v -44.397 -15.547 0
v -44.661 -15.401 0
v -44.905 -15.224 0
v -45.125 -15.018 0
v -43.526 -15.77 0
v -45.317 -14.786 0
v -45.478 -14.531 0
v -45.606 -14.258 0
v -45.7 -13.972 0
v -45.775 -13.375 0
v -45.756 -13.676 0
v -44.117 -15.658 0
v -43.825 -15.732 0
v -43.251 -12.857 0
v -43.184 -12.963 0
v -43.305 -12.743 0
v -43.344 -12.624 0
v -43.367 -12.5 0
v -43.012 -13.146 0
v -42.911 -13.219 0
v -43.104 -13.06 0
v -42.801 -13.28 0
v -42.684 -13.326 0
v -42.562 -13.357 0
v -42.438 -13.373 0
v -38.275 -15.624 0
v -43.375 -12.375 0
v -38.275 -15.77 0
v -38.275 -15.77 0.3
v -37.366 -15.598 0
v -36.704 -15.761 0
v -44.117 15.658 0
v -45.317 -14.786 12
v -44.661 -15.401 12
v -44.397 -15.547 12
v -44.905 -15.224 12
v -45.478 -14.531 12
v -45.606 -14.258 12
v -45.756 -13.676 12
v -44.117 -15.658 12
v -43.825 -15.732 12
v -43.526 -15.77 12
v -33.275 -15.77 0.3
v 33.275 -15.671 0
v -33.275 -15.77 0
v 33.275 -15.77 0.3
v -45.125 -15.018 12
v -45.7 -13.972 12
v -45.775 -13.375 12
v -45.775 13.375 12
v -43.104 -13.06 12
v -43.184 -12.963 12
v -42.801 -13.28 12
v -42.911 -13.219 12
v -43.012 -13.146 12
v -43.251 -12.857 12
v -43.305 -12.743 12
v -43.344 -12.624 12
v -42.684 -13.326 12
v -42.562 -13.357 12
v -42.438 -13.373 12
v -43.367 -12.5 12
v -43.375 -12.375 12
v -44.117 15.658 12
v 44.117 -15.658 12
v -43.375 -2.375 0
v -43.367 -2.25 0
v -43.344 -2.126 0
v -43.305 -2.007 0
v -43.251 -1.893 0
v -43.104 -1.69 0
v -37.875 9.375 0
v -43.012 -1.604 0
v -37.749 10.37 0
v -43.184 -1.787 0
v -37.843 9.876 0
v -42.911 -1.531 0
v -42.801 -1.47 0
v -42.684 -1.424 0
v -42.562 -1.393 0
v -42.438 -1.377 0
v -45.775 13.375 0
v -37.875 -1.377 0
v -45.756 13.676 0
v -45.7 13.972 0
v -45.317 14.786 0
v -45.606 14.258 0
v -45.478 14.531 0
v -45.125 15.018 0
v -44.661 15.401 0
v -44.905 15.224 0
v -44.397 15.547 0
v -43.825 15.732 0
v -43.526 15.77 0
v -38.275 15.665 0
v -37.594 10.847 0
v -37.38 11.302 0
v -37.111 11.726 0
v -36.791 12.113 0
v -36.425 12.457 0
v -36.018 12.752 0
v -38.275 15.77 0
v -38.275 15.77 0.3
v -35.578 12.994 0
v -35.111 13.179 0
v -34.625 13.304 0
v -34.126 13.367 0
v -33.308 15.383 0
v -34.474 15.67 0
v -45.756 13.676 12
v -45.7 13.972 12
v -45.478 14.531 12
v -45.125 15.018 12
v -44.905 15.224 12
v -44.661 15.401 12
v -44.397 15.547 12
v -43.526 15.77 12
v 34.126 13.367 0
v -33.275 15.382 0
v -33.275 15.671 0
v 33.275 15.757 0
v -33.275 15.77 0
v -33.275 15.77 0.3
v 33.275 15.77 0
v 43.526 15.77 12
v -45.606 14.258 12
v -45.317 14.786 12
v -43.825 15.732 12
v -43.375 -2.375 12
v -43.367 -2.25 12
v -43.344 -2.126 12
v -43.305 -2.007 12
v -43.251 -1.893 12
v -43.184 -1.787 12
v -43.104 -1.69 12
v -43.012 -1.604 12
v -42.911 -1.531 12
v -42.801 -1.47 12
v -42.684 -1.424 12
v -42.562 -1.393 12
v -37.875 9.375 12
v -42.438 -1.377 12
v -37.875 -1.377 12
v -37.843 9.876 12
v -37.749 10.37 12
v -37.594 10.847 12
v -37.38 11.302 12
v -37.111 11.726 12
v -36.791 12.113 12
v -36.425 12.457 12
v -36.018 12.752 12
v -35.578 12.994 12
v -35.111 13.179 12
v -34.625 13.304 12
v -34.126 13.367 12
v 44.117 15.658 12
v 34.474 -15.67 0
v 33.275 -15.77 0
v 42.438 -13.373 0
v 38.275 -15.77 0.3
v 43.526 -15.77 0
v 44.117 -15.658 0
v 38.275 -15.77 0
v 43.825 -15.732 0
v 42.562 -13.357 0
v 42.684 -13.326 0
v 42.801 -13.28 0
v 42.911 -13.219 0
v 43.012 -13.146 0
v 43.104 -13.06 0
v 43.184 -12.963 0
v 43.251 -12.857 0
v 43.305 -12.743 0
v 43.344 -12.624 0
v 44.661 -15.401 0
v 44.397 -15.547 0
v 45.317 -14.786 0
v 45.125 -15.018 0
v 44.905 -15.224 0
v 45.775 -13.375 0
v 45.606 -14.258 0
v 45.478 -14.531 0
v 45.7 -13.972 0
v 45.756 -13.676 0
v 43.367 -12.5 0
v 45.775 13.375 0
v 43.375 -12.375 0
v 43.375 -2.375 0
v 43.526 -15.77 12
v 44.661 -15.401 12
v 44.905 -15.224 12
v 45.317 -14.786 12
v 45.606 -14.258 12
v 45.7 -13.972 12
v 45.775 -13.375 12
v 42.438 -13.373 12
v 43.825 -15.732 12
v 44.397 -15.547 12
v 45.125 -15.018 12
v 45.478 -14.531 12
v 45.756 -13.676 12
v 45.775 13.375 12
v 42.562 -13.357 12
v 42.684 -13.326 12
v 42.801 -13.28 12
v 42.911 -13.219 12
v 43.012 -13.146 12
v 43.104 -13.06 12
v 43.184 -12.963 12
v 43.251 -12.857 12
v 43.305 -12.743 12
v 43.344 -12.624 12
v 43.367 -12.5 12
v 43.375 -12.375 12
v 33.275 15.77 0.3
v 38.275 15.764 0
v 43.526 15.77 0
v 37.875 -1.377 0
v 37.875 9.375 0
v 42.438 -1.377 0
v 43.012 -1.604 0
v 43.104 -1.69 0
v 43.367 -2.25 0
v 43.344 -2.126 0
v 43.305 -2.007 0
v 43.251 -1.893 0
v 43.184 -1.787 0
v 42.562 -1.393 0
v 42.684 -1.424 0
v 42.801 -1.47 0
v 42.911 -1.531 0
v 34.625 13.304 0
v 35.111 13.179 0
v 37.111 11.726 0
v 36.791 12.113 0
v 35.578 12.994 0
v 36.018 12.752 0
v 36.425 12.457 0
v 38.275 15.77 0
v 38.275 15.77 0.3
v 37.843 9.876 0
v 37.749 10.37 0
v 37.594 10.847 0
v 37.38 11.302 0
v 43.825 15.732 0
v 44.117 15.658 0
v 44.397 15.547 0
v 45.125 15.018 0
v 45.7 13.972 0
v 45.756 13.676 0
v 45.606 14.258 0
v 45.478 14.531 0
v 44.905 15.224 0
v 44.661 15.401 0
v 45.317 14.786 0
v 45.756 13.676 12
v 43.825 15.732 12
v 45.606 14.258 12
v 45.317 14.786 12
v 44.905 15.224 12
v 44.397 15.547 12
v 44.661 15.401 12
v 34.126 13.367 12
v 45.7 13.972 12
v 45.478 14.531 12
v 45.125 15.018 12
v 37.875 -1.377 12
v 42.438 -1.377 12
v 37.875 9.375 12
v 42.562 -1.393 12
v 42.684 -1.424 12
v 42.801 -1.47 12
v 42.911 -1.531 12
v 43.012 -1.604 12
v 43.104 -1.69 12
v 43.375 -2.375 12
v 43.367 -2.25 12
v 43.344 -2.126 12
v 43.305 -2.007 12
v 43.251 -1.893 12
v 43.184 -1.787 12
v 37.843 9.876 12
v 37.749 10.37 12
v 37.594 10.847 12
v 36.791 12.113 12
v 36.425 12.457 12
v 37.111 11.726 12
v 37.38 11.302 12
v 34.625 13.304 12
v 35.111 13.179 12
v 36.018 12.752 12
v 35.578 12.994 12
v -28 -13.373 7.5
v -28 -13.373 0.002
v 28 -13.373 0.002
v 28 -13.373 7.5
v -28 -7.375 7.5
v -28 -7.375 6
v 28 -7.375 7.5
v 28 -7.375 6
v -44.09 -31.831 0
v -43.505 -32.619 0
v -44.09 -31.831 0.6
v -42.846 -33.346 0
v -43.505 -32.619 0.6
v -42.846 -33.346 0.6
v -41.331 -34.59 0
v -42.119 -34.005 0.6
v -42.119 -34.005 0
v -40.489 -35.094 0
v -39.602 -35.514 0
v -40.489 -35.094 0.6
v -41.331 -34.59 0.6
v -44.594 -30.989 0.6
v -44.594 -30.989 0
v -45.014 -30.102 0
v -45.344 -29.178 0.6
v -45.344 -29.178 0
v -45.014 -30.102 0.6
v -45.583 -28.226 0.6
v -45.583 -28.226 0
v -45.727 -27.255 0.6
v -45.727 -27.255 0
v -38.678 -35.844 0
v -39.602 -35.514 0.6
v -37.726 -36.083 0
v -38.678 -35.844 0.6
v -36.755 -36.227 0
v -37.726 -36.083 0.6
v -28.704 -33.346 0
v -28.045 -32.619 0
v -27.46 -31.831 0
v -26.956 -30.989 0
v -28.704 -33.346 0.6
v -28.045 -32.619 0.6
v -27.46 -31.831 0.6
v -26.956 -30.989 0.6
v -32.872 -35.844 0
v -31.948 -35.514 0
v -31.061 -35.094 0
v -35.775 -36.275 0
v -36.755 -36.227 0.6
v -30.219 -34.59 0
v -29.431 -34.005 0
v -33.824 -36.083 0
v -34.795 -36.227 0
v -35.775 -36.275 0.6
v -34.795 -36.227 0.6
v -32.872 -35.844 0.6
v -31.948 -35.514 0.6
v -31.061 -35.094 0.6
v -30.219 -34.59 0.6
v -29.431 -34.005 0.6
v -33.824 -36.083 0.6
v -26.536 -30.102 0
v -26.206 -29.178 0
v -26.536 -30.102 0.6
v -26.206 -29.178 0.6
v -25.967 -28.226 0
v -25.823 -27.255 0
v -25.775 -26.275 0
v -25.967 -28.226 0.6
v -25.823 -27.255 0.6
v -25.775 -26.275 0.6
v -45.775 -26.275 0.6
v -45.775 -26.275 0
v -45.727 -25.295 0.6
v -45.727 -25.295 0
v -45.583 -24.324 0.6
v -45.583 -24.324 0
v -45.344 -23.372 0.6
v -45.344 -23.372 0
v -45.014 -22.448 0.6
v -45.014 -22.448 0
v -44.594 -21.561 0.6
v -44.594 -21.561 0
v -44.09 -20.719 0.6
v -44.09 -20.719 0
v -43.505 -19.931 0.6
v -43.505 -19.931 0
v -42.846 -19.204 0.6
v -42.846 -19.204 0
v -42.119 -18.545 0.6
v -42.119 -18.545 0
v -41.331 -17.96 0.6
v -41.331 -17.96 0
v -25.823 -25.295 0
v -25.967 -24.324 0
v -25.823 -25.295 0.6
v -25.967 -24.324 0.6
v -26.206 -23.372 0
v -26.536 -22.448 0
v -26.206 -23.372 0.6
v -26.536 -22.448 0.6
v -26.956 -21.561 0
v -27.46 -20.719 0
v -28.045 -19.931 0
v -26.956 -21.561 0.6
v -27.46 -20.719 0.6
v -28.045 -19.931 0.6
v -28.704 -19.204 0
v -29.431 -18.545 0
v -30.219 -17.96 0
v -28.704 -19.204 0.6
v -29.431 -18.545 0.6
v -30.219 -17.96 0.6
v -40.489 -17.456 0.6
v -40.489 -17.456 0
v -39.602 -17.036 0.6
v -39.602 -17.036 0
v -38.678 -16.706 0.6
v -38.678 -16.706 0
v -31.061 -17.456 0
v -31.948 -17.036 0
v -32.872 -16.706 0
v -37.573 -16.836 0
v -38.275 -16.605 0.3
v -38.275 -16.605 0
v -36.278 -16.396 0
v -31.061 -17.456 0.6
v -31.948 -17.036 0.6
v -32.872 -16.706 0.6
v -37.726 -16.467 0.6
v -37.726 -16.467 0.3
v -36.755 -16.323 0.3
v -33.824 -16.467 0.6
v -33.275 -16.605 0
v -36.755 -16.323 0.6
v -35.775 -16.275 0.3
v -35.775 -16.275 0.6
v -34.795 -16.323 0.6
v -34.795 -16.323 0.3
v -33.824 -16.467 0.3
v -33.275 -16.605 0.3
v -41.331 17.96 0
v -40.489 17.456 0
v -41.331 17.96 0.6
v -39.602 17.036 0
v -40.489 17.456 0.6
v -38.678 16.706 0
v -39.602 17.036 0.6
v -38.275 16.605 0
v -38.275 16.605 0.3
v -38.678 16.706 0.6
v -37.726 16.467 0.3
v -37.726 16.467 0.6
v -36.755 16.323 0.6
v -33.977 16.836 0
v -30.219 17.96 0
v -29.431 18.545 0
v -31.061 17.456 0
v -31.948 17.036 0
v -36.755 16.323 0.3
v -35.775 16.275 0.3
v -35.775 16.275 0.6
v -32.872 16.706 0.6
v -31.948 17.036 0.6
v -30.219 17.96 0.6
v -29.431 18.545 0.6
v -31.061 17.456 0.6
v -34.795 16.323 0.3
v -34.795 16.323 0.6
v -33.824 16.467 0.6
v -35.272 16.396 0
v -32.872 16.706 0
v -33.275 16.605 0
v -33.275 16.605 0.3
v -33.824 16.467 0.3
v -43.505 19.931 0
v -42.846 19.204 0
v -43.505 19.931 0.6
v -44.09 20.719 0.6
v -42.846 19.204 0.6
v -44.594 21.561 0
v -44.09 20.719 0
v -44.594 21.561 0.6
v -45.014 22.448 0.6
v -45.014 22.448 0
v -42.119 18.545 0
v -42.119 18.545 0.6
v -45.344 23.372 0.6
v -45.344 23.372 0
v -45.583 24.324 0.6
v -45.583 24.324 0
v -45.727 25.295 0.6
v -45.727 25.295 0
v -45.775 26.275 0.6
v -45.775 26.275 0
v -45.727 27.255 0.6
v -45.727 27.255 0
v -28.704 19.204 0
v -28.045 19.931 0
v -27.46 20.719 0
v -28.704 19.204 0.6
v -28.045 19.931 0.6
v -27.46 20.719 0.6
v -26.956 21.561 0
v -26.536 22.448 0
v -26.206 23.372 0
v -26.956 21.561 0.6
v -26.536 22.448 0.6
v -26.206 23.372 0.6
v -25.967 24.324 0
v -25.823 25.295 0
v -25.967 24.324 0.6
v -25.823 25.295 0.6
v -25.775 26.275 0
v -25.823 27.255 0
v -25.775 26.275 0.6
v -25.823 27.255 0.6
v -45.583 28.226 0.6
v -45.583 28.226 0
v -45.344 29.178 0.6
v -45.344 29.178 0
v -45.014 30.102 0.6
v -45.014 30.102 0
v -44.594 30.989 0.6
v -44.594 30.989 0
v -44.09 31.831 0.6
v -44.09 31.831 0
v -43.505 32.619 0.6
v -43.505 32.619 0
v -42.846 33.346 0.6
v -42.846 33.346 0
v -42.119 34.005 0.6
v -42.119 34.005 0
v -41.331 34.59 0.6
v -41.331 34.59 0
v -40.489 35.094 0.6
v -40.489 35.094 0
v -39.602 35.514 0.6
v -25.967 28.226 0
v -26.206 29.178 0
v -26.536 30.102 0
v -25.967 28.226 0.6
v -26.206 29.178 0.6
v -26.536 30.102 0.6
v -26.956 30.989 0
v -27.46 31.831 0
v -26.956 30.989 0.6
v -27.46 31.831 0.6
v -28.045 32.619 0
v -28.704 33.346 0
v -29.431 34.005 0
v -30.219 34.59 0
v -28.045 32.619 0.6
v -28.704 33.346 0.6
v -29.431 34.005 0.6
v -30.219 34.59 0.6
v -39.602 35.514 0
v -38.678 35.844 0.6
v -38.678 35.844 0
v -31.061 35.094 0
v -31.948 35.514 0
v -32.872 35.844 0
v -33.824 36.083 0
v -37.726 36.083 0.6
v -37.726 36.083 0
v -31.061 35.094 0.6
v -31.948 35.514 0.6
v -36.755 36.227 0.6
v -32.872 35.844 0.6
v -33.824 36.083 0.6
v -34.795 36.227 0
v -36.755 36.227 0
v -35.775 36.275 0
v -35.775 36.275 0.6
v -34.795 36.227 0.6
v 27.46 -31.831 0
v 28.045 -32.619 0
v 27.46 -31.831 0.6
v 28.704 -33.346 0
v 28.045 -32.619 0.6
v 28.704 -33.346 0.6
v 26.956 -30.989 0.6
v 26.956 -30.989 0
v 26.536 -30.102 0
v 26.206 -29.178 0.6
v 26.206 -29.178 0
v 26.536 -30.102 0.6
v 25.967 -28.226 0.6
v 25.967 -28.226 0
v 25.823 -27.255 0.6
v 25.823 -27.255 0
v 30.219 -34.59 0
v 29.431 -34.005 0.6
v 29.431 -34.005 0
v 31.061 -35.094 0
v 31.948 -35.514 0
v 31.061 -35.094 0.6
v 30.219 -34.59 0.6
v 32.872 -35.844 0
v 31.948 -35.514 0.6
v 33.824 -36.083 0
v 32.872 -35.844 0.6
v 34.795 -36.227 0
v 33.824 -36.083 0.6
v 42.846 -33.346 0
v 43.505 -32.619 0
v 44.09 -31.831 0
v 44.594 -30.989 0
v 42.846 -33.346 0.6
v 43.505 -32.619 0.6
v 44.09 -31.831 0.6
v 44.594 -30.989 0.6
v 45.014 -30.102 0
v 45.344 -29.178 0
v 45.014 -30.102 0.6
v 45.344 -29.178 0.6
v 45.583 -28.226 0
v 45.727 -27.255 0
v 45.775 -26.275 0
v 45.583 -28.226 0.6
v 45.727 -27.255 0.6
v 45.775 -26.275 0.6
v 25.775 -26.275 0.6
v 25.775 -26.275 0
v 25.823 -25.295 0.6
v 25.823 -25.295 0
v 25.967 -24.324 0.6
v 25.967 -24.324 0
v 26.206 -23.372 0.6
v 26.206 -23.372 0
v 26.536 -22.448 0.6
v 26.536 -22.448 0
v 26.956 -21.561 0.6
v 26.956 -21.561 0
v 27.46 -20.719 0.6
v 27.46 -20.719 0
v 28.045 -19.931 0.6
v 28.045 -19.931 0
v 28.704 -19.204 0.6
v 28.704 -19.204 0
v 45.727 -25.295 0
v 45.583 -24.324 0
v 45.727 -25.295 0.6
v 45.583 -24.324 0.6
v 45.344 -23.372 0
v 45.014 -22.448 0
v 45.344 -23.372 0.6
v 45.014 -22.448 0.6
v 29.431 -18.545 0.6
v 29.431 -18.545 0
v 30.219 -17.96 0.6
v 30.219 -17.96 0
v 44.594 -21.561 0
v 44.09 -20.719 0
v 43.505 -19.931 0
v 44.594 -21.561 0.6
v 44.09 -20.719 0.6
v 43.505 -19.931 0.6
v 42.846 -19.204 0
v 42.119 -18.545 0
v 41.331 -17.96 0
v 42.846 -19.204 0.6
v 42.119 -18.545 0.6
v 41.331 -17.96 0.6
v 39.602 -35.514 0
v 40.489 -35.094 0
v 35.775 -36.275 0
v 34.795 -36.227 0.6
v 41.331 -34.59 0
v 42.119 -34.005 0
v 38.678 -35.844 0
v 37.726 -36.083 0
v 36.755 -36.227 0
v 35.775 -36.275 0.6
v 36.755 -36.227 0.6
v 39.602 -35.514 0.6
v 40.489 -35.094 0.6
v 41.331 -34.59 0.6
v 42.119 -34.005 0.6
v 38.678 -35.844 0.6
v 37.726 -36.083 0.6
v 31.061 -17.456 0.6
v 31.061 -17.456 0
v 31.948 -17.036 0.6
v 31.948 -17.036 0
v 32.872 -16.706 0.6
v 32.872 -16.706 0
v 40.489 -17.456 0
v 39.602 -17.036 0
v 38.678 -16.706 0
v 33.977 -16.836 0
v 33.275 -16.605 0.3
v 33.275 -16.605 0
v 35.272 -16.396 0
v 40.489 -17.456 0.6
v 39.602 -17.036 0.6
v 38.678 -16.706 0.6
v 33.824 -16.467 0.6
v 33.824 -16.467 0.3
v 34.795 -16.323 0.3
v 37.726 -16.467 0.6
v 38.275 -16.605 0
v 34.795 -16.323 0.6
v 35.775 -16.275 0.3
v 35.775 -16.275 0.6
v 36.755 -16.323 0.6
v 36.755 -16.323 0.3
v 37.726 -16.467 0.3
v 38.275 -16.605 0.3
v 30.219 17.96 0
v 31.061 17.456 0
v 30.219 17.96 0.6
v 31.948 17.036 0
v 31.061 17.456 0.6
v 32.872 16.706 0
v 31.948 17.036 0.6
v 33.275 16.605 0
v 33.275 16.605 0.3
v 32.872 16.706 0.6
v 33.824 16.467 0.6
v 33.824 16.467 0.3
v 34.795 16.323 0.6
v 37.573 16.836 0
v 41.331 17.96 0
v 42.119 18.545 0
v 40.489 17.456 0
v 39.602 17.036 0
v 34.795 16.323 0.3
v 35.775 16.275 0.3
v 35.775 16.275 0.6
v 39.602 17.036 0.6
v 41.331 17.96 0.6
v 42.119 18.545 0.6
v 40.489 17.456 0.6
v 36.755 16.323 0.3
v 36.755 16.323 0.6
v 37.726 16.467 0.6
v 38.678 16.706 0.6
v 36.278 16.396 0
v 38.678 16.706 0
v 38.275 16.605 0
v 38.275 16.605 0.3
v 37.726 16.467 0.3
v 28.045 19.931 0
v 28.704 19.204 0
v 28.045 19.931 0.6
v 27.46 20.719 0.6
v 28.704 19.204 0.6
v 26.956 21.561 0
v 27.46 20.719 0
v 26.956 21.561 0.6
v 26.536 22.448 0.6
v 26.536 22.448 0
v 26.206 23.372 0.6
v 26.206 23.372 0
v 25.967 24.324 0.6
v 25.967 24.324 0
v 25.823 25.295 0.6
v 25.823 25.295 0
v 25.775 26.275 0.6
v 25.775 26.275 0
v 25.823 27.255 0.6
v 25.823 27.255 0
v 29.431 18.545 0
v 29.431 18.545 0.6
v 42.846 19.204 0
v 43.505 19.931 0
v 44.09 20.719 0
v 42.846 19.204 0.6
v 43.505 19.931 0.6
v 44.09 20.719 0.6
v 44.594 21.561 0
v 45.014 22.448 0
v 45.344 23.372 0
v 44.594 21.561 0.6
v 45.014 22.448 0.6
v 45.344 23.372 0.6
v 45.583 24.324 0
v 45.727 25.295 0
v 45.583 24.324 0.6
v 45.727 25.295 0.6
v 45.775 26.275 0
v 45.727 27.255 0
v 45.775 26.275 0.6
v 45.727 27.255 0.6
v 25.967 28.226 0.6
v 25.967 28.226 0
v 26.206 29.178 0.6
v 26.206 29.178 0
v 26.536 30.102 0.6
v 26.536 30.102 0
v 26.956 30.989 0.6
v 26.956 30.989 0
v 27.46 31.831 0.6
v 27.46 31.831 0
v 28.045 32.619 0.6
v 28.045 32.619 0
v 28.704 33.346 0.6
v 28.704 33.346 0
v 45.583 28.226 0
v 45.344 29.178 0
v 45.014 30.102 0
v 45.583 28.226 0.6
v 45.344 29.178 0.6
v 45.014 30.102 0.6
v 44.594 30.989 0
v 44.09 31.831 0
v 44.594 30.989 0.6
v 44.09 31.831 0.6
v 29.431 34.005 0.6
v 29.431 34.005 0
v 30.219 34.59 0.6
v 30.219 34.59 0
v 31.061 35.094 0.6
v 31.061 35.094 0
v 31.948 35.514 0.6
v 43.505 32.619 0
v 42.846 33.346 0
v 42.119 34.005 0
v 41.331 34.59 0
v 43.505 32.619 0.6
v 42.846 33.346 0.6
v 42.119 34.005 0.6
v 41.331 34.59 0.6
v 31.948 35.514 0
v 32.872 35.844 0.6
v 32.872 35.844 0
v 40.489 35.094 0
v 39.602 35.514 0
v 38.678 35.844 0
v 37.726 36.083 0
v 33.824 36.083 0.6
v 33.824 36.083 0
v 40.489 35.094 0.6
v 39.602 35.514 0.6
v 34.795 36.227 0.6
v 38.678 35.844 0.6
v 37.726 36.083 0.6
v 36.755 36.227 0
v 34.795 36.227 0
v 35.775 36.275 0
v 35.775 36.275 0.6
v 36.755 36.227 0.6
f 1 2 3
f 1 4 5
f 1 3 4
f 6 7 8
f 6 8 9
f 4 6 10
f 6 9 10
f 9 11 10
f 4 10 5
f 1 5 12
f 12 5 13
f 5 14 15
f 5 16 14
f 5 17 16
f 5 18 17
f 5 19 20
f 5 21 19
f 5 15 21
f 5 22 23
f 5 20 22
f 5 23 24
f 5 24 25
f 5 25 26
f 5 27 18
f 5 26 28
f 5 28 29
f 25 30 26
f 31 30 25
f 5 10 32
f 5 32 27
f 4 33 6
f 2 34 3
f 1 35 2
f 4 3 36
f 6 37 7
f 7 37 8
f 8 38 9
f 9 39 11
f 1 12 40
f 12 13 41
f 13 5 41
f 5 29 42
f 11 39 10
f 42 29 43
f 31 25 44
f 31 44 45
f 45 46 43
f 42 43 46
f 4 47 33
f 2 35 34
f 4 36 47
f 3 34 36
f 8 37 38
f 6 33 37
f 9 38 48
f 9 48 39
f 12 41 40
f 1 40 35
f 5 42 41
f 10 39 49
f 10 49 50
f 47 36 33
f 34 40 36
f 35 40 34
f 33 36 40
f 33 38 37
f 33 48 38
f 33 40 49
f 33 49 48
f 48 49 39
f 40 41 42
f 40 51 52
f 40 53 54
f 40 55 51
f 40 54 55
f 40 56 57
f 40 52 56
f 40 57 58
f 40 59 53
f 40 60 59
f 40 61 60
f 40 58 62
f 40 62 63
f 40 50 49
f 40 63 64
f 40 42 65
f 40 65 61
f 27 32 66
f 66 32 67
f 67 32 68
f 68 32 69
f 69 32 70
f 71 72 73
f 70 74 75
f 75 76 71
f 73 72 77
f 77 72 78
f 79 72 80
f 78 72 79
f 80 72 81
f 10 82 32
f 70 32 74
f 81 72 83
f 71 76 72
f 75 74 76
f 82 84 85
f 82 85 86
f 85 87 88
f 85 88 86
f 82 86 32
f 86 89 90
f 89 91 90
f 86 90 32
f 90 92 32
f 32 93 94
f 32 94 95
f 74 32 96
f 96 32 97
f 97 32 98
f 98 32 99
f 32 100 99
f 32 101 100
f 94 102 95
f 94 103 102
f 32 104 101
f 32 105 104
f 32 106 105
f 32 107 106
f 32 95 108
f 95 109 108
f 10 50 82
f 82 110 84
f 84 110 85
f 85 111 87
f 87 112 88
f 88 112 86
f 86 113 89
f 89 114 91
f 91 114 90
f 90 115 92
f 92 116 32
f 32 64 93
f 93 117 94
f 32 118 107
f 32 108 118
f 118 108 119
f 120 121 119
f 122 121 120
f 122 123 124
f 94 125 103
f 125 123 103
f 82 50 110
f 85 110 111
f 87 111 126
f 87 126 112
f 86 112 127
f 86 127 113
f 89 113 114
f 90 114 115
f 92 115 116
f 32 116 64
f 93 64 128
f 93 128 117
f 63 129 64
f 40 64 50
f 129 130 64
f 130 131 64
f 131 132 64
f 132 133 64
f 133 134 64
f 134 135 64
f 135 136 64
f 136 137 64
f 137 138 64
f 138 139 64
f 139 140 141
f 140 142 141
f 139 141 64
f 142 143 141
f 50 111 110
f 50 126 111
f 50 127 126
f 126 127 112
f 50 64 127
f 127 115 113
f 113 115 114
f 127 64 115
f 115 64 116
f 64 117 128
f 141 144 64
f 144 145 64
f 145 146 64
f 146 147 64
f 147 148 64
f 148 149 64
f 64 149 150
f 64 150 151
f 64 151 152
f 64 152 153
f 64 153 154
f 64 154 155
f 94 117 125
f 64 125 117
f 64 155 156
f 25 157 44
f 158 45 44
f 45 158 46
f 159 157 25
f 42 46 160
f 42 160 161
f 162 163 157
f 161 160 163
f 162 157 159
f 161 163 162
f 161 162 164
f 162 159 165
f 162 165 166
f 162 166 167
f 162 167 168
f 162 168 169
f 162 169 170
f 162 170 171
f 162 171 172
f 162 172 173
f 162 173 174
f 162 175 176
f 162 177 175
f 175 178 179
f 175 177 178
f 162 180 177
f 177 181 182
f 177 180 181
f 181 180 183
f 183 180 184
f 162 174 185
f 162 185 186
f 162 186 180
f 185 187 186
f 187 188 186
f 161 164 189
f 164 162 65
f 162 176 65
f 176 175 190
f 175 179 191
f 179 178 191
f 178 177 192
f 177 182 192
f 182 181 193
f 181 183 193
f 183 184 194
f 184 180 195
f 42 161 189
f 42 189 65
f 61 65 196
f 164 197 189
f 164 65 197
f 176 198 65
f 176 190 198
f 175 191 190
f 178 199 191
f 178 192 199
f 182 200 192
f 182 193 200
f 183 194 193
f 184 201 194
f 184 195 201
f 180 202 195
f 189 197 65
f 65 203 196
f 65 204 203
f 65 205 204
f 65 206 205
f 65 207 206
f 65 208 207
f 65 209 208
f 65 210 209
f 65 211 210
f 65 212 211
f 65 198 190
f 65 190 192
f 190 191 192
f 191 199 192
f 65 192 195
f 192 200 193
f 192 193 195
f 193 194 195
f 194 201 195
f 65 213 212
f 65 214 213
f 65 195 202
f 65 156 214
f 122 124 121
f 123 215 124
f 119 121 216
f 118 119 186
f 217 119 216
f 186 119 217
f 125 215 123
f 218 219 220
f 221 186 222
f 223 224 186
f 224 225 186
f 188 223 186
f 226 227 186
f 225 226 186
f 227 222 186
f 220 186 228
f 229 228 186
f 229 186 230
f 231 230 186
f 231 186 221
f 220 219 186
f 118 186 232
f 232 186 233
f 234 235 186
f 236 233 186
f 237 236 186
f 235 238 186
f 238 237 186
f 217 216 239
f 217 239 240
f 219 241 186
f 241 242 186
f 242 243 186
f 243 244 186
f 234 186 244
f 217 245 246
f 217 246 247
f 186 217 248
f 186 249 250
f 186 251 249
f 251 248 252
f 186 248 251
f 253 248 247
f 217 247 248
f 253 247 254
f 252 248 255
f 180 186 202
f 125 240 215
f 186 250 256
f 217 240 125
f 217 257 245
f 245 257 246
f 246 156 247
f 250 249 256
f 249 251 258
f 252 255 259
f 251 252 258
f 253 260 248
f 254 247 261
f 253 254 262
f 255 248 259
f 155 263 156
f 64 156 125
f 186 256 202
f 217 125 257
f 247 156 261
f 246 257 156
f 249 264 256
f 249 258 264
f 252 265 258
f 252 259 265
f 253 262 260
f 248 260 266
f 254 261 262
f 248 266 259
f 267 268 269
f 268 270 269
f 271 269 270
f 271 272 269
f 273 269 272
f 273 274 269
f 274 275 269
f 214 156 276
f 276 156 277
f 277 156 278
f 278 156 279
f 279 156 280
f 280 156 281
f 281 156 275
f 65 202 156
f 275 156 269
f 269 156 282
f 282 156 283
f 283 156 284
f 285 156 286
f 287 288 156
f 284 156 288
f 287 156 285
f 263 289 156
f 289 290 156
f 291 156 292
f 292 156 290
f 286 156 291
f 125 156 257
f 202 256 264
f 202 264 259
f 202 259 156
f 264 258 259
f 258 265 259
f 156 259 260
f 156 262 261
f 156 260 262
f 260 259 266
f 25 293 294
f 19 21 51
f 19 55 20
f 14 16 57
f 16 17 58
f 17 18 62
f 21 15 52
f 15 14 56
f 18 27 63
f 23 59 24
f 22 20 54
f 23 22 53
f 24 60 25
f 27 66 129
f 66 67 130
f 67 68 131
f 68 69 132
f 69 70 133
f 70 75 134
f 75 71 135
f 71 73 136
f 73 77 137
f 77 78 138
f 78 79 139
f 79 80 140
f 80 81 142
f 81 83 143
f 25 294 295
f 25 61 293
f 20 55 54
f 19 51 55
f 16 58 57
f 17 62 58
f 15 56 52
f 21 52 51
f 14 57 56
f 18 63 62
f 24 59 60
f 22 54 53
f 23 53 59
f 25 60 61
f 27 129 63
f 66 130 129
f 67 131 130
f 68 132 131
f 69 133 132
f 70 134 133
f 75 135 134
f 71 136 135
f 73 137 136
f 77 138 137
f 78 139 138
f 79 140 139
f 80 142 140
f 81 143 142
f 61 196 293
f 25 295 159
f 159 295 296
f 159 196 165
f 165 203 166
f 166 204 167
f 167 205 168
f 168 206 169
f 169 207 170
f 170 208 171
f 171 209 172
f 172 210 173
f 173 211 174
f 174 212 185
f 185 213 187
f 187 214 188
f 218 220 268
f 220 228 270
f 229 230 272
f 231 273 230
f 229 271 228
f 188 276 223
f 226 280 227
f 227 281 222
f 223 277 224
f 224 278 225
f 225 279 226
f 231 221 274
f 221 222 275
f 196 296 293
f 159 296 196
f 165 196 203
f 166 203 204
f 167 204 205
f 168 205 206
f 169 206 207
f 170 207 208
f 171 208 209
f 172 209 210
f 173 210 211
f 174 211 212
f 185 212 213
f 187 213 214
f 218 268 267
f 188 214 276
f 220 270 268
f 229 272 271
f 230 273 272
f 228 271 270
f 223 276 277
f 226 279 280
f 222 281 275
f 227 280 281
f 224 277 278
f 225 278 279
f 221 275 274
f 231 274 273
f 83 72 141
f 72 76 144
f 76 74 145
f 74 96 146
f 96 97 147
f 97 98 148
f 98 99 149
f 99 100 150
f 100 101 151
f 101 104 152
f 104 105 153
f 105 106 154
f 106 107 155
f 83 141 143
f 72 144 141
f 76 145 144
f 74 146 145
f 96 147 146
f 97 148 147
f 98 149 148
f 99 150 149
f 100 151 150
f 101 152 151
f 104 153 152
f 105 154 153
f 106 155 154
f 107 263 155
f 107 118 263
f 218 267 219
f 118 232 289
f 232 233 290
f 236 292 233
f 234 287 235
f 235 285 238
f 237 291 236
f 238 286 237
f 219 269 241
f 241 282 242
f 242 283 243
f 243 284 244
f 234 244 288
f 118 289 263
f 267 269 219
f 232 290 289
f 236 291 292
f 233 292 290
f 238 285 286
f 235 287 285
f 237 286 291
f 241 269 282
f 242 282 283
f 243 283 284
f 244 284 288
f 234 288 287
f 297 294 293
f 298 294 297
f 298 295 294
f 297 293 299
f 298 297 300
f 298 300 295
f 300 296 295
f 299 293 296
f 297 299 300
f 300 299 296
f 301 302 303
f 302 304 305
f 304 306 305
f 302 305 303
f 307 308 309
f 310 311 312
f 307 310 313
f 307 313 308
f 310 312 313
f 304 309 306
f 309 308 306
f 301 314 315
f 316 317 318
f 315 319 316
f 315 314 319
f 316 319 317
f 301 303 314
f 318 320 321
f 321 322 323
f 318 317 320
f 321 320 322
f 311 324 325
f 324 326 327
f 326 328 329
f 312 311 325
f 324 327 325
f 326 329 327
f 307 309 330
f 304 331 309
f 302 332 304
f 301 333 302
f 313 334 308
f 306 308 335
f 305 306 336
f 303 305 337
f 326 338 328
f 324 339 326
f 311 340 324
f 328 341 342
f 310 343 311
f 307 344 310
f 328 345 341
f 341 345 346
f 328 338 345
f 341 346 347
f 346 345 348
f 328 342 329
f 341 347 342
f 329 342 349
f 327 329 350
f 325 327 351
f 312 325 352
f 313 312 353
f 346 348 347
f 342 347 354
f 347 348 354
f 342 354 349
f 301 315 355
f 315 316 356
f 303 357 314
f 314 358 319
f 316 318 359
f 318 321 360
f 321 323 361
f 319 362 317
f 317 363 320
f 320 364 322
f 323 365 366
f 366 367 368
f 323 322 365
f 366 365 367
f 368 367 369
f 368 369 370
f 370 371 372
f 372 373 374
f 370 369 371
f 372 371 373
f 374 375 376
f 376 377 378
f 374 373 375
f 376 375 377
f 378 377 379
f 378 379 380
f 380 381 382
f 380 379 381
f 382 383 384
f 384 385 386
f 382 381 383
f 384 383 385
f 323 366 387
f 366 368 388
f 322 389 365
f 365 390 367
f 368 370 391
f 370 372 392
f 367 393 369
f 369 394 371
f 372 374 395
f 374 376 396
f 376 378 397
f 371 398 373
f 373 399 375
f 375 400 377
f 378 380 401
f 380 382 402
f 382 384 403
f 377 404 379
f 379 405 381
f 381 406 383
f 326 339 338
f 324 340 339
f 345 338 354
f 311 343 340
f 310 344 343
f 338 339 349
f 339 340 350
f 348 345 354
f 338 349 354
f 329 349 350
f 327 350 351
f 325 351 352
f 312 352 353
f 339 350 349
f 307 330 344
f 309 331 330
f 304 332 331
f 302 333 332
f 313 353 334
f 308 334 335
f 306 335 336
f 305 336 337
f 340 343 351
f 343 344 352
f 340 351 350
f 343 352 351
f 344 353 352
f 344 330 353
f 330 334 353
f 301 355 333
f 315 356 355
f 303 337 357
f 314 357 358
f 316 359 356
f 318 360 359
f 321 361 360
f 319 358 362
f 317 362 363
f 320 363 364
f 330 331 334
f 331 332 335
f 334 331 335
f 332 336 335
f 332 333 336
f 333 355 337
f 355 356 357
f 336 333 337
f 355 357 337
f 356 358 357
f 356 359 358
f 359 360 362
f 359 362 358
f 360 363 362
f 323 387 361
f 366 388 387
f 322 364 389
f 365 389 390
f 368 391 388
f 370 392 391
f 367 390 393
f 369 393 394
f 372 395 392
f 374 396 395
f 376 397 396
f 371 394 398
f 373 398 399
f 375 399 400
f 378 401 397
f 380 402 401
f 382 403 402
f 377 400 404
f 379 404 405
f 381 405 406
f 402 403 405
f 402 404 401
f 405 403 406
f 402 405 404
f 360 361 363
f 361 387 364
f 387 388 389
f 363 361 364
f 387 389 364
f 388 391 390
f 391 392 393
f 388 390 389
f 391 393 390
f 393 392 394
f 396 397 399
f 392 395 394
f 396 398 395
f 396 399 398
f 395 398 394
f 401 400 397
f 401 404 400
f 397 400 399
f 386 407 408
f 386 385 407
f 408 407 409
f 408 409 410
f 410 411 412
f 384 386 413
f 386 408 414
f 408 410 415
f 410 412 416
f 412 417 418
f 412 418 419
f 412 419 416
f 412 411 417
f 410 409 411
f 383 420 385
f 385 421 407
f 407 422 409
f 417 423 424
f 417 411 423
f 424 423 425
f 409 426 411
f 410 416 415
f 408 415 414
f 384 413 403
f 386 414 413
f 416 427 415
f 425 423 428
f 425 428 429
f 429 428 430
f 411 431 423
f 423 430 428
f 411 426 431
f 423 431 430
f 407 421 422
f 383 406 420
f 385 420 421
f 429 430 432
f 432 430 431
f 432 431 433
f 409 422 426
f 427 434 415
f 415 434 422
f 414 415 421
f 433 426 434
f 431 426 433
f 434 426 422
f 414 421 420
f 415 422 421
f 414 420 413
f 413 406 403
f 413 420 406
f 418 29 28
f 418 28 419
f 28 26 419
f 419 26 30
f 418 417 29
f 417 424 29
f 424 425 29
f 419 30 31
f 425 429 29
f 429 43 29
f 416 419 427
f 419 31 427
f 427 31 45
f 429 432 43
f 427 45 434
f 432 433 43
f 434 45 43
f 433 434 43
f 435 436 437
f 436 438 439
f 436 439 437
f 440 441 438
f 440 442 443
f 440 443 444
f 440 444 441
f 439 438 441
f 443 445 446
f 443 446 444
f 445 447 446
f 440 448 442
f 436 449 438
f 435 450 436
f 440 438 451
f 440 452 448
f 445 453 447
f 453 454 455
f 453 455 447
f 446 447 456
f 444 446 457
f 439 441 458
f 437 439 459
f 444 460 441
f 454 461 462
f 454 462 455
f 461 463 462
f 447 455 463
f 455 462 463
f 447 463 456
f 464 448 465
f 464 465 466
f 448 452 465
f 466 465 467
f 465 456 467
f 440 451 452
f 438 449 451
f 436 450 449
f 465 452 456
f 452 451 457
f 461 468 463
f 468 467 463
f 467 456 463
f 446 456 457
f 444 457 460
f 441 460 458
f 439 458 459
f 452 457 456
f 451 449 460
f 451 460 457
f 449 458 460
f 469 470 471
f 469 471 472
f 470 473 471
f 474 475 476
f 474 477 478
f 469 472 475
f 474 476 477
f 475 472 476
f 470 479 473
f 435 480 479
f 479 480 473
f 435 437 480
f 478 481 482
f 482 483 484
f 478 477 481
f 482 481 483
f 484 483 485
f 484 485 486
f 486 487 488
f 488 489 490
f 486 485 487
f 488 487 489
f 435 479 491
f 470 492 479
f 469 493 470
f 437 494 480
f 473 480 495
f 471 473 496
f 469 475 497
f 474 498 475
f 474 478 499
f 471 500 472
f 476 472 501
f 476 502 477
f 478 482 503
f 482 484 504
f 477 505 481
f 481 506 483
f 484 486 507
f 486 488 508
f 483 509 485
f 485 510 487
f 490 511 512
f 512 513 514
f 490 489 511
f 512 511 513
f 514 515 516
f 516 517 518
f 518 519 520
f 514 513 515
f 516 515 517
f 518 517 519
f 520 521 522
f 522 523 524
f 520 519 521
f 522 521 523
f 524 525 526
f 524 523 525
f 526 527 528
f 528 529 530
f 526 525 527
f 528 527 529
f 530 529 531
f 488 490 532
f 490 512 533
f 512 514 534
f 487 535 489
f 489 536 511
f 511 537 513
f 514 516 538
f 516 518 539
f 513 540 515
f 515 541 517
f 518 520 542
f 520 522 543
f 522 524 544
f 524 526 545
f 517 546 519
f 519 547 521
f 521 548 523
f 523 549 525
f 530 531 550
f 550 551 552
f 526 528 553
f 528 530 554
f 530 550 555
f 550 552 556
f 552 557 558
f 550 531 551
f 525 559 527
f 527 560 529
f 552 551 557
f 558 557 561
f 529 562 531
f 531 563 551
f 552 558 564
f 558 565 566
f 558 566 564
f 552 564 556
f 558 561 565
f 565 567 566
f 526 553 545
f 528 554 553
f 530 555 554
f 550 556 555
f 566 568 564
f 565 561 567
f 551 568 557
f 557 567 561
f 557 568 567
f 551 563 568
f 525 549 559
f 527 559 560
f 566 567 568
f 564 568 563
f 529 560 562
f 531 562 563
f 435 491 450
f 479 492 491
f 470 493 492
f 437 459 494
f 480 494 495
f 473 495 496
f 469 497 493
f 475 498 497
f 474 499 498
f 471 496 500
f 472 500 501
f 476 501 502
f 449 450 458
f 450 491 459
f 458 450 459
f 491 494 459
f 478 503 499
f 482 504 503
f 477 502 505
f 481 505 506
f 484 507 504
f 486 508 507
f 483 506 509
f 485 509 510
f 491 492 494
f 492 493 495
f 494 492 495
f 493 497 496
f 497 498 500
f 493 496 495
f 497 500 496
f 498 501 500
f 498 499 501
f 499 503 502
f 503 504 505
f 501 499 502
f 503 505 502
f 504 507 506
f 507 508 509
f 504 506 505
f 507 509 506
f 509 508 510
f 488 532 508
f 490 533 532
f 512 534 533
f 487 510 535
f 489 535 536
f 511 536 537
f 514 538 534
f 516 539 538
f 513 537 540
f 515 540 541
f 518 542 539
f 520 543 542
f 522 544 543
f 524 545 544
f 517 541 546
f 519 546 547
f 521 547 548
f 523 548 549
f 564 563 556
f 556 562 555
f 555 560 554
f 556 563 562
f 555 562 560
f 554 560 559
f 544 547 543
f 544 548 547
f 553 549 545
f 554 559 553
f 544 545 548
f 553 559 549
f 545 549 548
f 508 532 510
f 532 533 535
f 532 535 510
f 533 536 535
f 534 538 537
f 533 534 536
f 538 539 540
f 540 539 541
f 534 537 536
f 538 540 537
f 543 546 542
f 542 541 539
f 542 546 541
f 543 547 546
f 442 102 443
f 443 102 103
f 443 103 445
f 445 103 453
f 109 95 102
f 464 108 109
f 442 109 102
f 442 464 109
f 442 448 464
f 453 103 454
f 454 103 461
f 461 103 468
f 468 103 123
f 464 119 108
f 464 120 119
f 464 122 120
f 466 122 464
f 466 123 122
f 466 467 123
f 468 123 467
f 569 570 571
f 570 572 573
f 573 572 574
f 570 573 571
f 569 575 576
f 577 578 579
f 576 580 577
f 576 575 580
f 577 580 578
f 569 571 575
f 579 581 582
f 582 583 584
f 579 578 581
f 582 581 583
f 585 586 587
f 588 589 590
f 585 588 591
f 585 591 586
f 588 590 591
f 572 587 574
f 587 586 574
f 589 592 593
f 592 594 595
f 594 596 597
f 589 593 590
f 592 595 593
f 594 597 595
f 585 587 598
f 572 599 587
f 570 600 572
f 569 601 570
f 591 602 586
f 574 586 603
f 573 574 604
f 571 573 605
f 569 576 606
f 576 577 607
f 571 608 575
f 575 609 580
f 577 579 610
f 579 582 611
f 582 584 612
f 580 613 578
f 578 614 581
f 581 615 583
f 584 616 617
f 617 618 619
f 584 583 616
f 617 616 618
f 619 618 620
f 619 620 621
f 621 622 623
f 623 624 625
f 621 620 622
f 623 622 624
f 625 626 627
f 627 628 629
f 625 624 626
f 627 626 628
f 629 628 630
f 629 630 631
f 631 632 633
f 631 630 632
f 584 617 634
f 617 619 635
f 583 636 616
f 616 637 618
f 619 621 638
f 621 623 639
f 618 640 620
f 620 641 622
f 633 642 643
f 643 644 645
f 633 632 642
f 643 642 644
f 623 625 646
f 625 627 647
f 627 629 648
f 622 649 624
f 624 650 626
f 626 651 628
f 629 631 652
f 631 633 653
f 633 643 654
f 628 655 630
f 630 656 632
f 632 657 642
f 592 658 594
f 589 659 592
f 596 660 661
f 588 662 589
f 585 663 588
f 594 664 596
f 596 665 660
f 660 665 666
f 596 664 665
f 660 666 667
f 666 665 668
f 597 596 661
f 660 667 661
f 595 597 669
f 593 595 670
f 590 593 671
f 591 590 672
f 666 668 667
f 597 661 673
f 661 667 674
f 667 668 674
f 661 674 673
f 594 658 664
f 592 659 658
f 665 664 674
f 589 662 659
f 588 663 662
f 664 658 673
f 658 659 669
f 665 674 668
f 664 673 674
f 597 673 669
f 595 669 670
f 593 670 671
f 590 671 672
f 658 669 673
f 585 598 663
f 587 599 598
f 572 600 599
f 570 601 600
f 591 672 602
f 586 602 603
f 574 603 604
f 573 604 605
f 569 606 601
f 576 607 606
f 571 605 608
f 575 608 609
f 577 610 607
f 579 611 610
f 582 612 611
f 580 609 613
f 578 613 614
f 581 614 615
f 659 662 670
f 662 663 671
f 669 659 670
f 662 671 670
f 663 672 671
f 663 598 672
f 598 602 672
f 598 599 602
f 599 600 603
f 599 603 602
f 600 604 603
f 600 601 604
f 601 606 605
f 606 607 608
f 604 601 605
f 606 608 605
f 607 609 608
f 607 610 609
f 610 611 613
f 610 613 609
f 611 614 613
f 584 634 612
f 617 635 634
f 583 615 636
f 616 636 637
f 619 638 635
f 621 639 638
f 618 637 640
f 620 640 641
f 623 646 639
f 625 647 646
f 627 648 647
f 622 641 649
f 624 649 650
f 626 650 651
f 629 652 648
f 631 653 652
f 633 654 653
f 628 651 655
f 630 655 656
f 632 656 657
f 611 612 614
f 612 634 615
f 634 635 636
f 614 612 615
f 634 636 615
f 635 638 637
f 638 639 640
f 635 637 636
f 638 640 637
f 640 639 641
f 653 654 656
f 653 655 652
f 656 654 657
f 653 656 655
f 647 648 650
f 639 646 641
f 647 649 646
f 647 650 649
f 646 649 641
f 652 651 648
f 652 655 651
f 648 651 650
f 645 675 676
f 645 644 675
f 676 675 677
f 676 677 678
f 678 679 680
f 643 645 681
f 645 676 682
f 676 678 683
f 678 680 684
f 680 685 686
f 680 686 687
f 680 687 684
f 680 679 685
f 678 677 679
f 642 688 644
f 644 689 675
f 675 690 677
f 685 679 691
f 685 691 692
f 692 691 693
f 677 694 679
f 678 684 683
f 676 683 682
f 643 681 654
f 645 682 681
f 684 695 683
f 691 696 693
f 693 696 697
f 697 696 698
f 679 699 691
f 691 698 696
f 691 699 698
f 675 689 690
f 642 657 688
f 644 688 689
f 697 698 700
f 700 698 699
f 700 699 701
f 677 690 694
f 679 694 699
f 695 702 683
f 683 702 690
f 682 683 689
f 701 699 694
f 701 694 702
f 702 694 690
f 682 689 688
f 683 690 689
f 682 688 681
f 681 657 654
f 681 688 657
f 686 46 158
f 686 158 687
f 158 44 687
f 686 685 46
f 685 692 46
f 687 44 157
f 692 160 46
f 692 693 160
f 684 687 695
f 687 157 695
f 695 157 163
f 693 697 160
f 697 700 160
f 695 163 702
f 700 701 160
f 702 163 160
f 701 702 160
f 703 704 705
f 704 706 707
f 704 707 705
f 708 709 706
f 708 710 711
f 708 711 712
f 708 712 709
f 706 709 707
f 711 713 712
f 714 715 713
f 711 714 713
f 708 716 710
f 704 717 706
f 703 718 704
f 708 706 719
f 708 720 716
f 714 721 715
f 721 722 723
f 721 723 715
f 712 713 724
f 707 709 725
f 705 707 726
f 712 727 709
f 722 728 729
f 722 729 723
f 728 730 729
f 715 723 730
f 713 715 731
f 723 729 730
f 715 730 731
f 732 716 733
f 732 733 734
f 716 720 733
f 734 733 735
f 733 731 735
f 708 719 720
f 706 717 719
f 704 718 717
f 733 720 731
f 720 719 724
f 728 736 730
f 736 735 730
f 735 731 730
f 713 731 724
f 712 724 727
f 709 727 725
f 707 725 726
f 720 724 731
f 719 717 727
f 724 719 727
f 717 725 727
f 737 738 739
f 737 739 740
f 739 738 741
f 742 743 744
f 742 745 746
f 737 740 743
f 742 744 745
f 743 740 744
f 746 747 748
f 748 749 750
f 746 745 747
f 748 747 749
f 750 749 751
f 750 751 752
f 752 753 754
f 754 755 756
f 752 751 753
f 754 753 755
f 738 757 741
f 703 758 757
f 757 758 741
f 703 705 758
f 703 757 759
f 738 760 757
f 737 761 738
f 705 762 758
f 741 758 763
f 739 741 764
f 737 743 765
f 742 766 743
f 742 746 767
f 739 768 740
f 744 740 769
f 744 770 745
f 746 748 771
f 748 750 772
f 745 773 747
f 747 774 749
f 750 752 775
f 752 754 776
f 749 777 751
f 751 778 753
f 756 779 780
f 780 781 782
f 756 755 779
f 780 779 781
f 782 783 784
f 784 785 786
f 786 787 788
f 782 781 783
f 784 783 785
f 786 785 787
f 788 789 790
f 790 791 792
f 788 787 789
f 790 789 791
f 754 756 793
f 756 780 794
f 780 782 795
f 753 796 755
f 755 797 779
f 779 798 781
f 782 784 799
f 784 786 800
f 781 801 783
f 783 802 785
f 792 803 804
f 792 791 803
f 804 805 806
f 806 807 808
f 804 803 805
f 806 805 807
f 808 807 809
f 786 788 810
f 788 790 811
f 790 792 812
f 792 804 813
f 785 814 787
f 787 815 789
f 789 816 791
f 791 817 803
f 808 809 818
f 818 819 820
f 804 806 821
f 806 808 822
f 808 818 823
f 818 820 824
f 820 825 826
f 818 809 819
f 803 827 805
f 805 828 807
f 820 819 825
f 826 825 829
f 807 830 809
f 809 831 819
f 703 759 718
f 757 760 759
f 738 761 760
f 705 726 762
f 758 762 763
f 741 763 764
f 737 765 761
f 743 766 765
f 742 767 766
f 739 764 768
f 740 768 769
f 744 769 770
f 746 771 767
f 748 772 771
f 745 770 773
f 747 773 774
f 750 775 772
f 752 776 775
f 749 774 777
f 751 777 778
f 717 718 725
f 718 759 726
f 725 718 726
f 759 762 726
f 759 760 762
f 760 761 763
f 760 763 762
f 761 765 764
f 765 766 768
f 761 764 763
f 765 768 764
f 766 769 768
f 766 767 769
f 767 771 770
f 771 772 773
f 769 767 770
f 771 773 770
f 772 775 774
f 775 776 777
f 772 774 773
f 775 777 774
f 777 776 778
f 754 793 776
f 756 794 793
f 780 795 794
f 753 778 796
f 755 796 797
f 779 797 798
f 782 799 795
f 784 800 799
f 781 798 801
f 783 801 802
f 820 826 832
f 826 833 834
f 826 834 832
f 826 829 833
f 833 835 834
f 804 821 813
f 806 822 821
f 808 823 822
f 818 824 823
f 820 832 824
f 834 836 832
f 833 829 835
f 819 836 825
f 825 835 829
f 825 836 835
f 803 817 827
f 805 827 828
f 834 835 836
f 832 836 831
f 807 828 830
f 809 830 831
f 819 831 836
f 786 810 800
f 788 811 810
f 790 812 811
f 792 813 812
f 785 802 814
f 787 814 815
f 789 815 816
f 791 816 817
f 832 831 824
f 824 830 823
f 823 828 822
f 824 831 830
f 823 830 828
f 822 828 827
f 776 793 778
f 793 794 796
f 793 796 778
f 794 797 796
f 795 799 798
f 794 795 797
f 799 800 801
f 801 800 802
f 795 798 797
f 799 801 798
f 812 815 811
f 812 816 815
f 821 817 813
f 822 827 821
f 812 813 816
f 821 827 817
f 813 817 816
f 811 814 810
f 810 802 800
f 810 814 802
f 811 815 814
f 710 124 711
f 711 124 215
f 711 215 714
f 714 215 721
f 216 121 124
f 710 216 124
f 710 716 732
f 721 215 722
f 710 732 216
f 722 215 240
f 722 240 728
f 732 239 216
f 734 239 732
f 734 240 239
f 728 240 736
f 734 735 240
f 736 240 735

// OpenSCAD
$fn = 50;

union() {
	difference() {
		union() {
			hull() {
				translate(v = [-43.375, 13.375, 0]) {
					cylinder(h = 12, r = 2.4);
				}
				translate(v = [43.375, 13.375, 0]) {
					cylinder(h = 12, r = 2.4);
				}
				translate(v = [-43.375, -13.375, 0]) {
					cylinder(h = 12, r = 2.4);
				}
				translate(v = [43.375, -13.375, 0]) {
					cylinder(h = 12, r = 2.4);
				}
			}
		}
		union() {
			translate(v = [0.0, -7.375, -0.1]) {
				hull() {
					translate(v = [-42.375, 5.0, 0]) {
						cylinder(h = 12.2, r = 1.0);
					}
					translate(v = [42.375, 5.0, 0]) {
						cylinder(h = 12.2, r = 1.0);
					}
					translate(v = [-42.375, -5.0, 0]) {
						cylinder(h = 12.2, r = 1.0);
					}
					translate(v = [42.375, -5.0, 0]) {
						cylinder(h = 12.2, r = 1.0);
					}
				}
			}
			translate(v = [0.0, 0.0, -0.1]) {
				hull() {
					translate(v = [-33.875, 9.375, 0]) {
						cylinder(h = 12.2, r = 4.0);
					}
					translate(v = [33.875, 9.375, 0]) {
						cylinder(h = 12.2, r = 4.0);
					}
					translate(v = [-33.875, -9.375, 0]) {
						cylinder(h = 12.2, r = 4.0);
					}
					translate(v = [33.875, -9.375, 0]) {
						cylinder(h = 12.2, r = 4.0);
					}
				}
			}
		}
	}
	union() {
		#translate(v = [-28.0, -13.375, 0]) {
			rotate(a = [90, 0, 90]) {
				linear_extrude(height = 56.0) {
					polygon(points = [[-1.8, 0], [0, 0], [6.0, 6.0], [6.0, 7.5], [-1.8, 7.5]]);
				}
			}
		}
		translate(v = [-35.775, -26.275, 0]) {
			linear_extrude(height = 0.6) {
				polygon(points = [[10.0, 0.0], [9.95184726672197, 0.980171403295606], [9.807852804032304, 1.9509032201612824], [9.569403357322088, 2.902846772544623], [9.238795325112868, 3.826834323650898], [8.819212643483551, 4.7139673682599765], [8.314696123025453, 5.555702330196022], [7.73010453362737, 6.343932841636455], [7.0710678118654755, 7.0710678118654755], [6.343932841636455, 7.730104533627369], [5.555702330196023, 8.314696123025453], [4.713967368259978, 8.81921264348355], [3.8268343236508984, 9.238795325112868], [2.902846772544623, 9.56940335732209], [1.9509032201612833, 9.807852804032304], [0.9801714032956077, 9.951847266721968], [6.123233995736766e-16, 10.0], [-0.9801714032956065, 9.95184726672197], [-1.950903220161282, 9.807852804032304], [-2.9028467725446214, 9.56940335732209], [-3.826834323650897, 9.238795325112868], [-4.713967368259977, 8.819212643483551], [-5.55570233019602, 8.314696123025453], [-6.3439328416364535, 7.730104533627371], [-7.071067811865475, 7.0710678118654755], [-7.73010453362737, 6.343932841636455], [-8.314696123025453, 5.555702330196022], [-8.81921264348355, 4.713967368259978], [-9.238795325112868, 3.826834323650899], [-9.569403357322088, 2.902846772544624], [-9.807852804032304, 1.9509032201612861], [-9.951847266721968, 0.9801714032956083], [-10.0, 1.2246467991473533e-15], [-9.95184726672197, -0.9801714032956059], [-9.807852804032304, -1.9509032201612837], [-9.56940335732209, -2.902846772544621], [-9.238795325112868, -3.8268343236508966], [-8.819212643483551, -4.7139673682599765], [-8.314696123025454, -5.55570233019602], [-7.730104533627371, -6.343932841636453], [-7.071067811865477, -7.071067811865475], [-6.343932841636459, -7.730104533627367], [-5.555702330196022, -8.314696123025453], [-4.713967368259978, -8.81921264348355], [-3.8268343236509033, -9.238795325112864], [-2.9028467725446245, -9.569403357322088], [-1.9509032201612866, -9.807852804032303], [-0.9801714032956045, -9.95184726672197], [-1.8369701987210296e-15, -10.0], [0.9801714032956009, -9.95184726672197], [1.950903220161283, -9.807852804032304], [2.9028467725446205, -9.56940335732209], [3.8268343236509, -9.238795325112866], [4.713967368259976, -8.819212643483551], [5.555702330196018, -8.314696123025454], [6.343932841636456, -7.730104533627369], [7.071067811865474, -7.071067811865477], [7.730104533627365, -6.343932841636459], [8.314696123025453, -5.555702330196022], [8.819212643483548, -4.713967368259979], [9.238795325112864, -3.826834323650904], [9.569403357322088, -2.902846772544625], [9.807852804032303, -1.9509032201612873], [9.95184726672197, -0.980171403295605]]);
			}
		}
		translate(v = [-38.275, -17.075, 0]) {
			cube(size = [5.0, 1.6999999999999993, 0.3]);
		}
		translate(v = [-35.775, 26.275, 0]) {
			linear_extrude(height = 0.6) {
				polygon(points = [[10.0, 0.0], [9.95184726672197, 0.980171403295606], [9.807852804032304, 1.9509032201612824], [9.569403357322088, 2.902846772544623], [9.238795325112868, 3.826834323650898], [8.819212643483551, 4.7139673682599765], [8.314696123025453, 5.555702330196022], [7.73010453362737, 6.343932841636455], [7.0710678118654755, 7.0710678118654755], [6.343932841636455, 7.730104533627369], [5.555702330196023, 8.314696123025453], [4.713967368259978, 8.81921264348355], [3.8268343236508984, 9.238795325112868], [2.902846772544623, 9.56940335732209], [1.9509032201612833, 9.807852804032304], [0.9801714032956077, 9.951847266721968], [6.123233995736766e-16, 10.0], [-0.9801714032956065, 9.95184726672197], [-1.950903220161282, 9.807852804032304], [-2.9028467725446214, 9.56940335732209], [-3.826834323650897, 9.238795325112868], [-4.713967368259977, 8.819212643483551], [-5.55570233019602, 8.314696123025453], [-6.3439328416364535, 7.730104533627371], [-7.071067811865475, 7.0710678118654755], [-7.73010453362737, 6.343932841636455], [-8.314696123025453, 5.555702330196022], [-8.81921264348355, 4.713967368259978], [-9.238795325112868, 3.826834323650899], [-9.569403357322088, 2.902846772544624], [-9.807852804032304, 1.9509032201612861], [-9.951847266721968, 0.9801714032956083], [-10.0, 1.2246467991473533e-15], [-9.95184726672197, -0.9801714032956059], [-9.807852804032304, -1.9509032201612837], [-9.56940335732209, -2.902846772544621], [-9.238795325112868, -3.8268343236508966], [-8.819212643483551, -4.7139673682599765], [-8.314696123025454, -5.55570233019602], [-7.730104533627371, -6.343932841636453], [-7.071067811865477, -7.071067811865475], [-6.343932841636459, -7.730104533627367], [-5.555702330196022, -8.314696123025453], [-4.713967368259978, -8.81921264348355], [-3.8268343236509033, -9.238795325112864], [-2.9028467725446245, -9.569403357322088], [-1.9509032201612866, -9.807852804032303], [-0.9801714032956045, -9.95184726672197], [-1.8369701987210296e-15, -10.0], [0.9801714032956009, -9.95184726672197], [1.950903220161283, -9.807852804032304], [2.9028467725446205, -9.56940335732209], [3.8268343236509, -9.238795325112866], [4.713967368259976, -8.819212643483551], [5.555702330196018, -8.314696123025454], [6.343932841636456, -7.730104533627369], [7.071067811865474, -7.071067811865477], [7.730104533627365, -6.343932841636459], [8.314696123025453, -5.555702330196022], [8.819212643483548, -4.713967368259979], [9.238795325112864, -3.826834323650904], [9.569403357322088, -2.902846772544625], [9.807852804032303, -1.9509032201612873], [9.95184726672197, -0.980171403295605]]);
			}
		}
		translate(v = [-38.275, 15.375, 0]) {
			cube(size = [5.0, 1.6999999999999993, 0.3]);
		}
		translate(v = [35.775, -26.275, 0]) {
			linear_extrude(height = 0.6) {
				polygon(points = [[10.0, 0.0], [9.95184726672197, 0.980171403295606], [9.807852804032304, 1.9509032201612824], [9.569403357322088, 2.902846772544623], [9.238795325112868, 3.826834323650898], [8.819212643483551, 4.7139673682599765], [8.314696123025453, 5.555702330196022], [7.73010453362737, 6.343932841636455], [7.0710678118654755, 7.0710678118654755], [6.343932841636455, 7.730104533627369], [5.555702330196023, 8.314696123025453], [4.713967368259978, 8.81921264348355], [3.8268343236508984, 9.238795325112868], [2.902846772544623, 9.56940335732209], [1.9509032201612833, 9.807852804032304], [0.9801714032956077, 9.951847266721968], [6.123233995736766e-16, 10.0], [-0.9801714032956065, 9.95184726672197], [-1.950903220161282, 9.807852804032304], [-2.9028467725446214, 9.56940335732209], [-3.826834323650897, 9.238795325112868], [-4.713967368259977, 8.819212643483551], [-5.55570233019602, 8.314696123025453], [-6.3439328416364535, 7.730104533627371], [-7.071067811865475, 7.0710678118654755], [-7.73010453362737, 6.343932841636455], [-8.314696123025453, 5.555702330196022], [-8.81921264348355, 4.713967368259978], [-9.238795325112868, 3.826834323650899], [-9.569403357322088, 2.902846772544624], [-9.807852804032304, 1.9509032201612861], [-9.951847266721968, 0.9801714032956083], [-10.0, 1.2246467991473533e-15], [-9.95184726672197, -0.9801714032956059], [-9.807852804032304, -1.9509032201612837], [-9.56940335732209, -2.902846772544621], [-9.238795325112868, -3.8268343236508966], [-8.819212643483551, -4.7139673682599765], [-8.314696123025454, -5.55570233019602], [-7.730104533627371, -6.343932841636453], [-7.071067811865477, -7.071067811865475], [-6.343932841636459, -7.730104533627367], [-5.555702330196022, -8.314696123025453], [-4.713967368259978, -8.81921264348355], [-3.8268343236509033, -9.238795325112864], [-2.9028467725446245, -9.569403357322088], [-1.9509032201612866, -9.807852804032303], [-0.9801714032956045, -9.95184726672197], [-1.8369701987210296e-15, -10.0], [0.9801714032956009, -9.95184726672197], [1.950903220161283, -9.807852804032304], [2.9028467725446205, -9.56940335732209], [3.8268343236509, -9.238795325112866], [4.713967368259976, -8.819212643483551], [5.555702330196018, -8.314696123025454], [6.343932841636456, -7.730104533627369], [7.071067811865474, -7.071067811865477], [7.730104533627365, -6.343932841636459], [8.314696123025453, -5.555702330196022], [8.819212643483548, -4.713967368259979], [9.238795325112864, -3.826834323650904], [9.569403357322088, -2.902846772544625], [9.807852804032303, -1.9509032201612873], [9.95184726672197, -0.980171403295605]]);
			}
		}
		translate(v = [33.275, -17.075, 0]) {
			cube(size = [5.0, 1.6999999999999993, 0.3]);
		}
		translate(v = [35.775, 26.275, 0]) {
			linear_extrude(height = 0.6) {
				polygon(points = [[10.0, 0.0], [9.95184726672197, 0.980171403295606], [9.807852804032304, 1.9509032201612824], [9.569403357322088, 2.902846772544623], [9.238795325112868, 3.826834323650898], [8.819212643483551, 4.7139673682599765], [8.314696123025453, 5.555702330196022], [7.73010453362737, 6.343932841636455], [7.0710678118654755, 7.0710678118654755], [6.343932841636455, 7.730104533627369], [5.555702330196023, 8.314696123025453], [4.713967368259978, 8.81921264348355], [3.8268343236508984, 9.238795325112868], [2.902846772544623, 9.56940335732209], [1.9509032201612833, 9.807852804032304], [0.9801714032956077, 9.951847266721968], [6.123233995736766e-16, 10.0], [-0.9801714032956065, 9.95184726672197], [-1.950903220161282, 9.807852804032304], [-2.9028467725446214, 9.56940335732209], [-3.826834323650897, 9.238795325112868], [-4.713967368259977, 8.819212643483551], [-5.55570233019602, 8.314696123025453], [-6.3439328416364535, 7.730104533627371], [-7.071067811865475, 7.0710678118654755], [-7.73010453362737, 6.343932841636455], [-8.314696123025453, 5.555702330196022], [-8.81921264348355, 4.713967368259978], [-9.238795325112868, 3.826834323650899], [-9.569403357322088, 2.902846772544624], [-9.807852804032304, 1.9509032201612861], [-9.951847266721968, 0.9801714032956083], [-10.0, 1.2246467991473533e-15], [-9.95184726672197, -0.9801714032956059], [-9.807852804032304, -1.9509032201612837], [-9.56940335732209, -2.902846772544621], [-9.238795325112868, -3.8268343236508966], [-8.819212643483551, -4.7139673682599765], [-8.314696123025454, -5.55570233019602], [-7.730104533627371, -6.343932841636453], [-7.071067811865477, -7.071067811865475], [-6.343932841636459, -7.730104533627367], [-5.555702330196022, -8.314696123025453], [-4.713967368259978, -8.81921264348355], [-3.8268343236509033, -9.238795325112864], [-2.9028467725446245, -9.569403357322088], [-1.9509032201612866, -9.807852804032303], [-0.9801714032956045, -9.95184726672197], [-1.8369701987210296e-15, -10.0], [0.9801714032956009, -9.95184726672197], [1.950903220161283, -9.807852804032304], [2.9028467725446205, -9.56940335732209], [3.8268343236509, -9.238795325112866], [4.713967368259976, -8.819212643483551], [5.555702330196018, -8.314696123025454], [6.343932841636456, -7.730104533627369], [7.071067811865474, -7.071067811865477], [7.730104533627365, -6.343932841636459], [8.314696123025453, -5.555702330196022], [8.819212643483548, -4.713967368259979], [9.238795325112864, -3.826834323650904], [9.569403357322088, -2.902846772544625], [9.807852804032303, -1.9509032201612873], [9.95184726672197, -0.980171403295605]]);
			}
		}
		translate(v = [33.275, 15.375, 0]) {
			cube(size = [5.0, 1.6999999999999993, 0.3]);
		}
	}
}
